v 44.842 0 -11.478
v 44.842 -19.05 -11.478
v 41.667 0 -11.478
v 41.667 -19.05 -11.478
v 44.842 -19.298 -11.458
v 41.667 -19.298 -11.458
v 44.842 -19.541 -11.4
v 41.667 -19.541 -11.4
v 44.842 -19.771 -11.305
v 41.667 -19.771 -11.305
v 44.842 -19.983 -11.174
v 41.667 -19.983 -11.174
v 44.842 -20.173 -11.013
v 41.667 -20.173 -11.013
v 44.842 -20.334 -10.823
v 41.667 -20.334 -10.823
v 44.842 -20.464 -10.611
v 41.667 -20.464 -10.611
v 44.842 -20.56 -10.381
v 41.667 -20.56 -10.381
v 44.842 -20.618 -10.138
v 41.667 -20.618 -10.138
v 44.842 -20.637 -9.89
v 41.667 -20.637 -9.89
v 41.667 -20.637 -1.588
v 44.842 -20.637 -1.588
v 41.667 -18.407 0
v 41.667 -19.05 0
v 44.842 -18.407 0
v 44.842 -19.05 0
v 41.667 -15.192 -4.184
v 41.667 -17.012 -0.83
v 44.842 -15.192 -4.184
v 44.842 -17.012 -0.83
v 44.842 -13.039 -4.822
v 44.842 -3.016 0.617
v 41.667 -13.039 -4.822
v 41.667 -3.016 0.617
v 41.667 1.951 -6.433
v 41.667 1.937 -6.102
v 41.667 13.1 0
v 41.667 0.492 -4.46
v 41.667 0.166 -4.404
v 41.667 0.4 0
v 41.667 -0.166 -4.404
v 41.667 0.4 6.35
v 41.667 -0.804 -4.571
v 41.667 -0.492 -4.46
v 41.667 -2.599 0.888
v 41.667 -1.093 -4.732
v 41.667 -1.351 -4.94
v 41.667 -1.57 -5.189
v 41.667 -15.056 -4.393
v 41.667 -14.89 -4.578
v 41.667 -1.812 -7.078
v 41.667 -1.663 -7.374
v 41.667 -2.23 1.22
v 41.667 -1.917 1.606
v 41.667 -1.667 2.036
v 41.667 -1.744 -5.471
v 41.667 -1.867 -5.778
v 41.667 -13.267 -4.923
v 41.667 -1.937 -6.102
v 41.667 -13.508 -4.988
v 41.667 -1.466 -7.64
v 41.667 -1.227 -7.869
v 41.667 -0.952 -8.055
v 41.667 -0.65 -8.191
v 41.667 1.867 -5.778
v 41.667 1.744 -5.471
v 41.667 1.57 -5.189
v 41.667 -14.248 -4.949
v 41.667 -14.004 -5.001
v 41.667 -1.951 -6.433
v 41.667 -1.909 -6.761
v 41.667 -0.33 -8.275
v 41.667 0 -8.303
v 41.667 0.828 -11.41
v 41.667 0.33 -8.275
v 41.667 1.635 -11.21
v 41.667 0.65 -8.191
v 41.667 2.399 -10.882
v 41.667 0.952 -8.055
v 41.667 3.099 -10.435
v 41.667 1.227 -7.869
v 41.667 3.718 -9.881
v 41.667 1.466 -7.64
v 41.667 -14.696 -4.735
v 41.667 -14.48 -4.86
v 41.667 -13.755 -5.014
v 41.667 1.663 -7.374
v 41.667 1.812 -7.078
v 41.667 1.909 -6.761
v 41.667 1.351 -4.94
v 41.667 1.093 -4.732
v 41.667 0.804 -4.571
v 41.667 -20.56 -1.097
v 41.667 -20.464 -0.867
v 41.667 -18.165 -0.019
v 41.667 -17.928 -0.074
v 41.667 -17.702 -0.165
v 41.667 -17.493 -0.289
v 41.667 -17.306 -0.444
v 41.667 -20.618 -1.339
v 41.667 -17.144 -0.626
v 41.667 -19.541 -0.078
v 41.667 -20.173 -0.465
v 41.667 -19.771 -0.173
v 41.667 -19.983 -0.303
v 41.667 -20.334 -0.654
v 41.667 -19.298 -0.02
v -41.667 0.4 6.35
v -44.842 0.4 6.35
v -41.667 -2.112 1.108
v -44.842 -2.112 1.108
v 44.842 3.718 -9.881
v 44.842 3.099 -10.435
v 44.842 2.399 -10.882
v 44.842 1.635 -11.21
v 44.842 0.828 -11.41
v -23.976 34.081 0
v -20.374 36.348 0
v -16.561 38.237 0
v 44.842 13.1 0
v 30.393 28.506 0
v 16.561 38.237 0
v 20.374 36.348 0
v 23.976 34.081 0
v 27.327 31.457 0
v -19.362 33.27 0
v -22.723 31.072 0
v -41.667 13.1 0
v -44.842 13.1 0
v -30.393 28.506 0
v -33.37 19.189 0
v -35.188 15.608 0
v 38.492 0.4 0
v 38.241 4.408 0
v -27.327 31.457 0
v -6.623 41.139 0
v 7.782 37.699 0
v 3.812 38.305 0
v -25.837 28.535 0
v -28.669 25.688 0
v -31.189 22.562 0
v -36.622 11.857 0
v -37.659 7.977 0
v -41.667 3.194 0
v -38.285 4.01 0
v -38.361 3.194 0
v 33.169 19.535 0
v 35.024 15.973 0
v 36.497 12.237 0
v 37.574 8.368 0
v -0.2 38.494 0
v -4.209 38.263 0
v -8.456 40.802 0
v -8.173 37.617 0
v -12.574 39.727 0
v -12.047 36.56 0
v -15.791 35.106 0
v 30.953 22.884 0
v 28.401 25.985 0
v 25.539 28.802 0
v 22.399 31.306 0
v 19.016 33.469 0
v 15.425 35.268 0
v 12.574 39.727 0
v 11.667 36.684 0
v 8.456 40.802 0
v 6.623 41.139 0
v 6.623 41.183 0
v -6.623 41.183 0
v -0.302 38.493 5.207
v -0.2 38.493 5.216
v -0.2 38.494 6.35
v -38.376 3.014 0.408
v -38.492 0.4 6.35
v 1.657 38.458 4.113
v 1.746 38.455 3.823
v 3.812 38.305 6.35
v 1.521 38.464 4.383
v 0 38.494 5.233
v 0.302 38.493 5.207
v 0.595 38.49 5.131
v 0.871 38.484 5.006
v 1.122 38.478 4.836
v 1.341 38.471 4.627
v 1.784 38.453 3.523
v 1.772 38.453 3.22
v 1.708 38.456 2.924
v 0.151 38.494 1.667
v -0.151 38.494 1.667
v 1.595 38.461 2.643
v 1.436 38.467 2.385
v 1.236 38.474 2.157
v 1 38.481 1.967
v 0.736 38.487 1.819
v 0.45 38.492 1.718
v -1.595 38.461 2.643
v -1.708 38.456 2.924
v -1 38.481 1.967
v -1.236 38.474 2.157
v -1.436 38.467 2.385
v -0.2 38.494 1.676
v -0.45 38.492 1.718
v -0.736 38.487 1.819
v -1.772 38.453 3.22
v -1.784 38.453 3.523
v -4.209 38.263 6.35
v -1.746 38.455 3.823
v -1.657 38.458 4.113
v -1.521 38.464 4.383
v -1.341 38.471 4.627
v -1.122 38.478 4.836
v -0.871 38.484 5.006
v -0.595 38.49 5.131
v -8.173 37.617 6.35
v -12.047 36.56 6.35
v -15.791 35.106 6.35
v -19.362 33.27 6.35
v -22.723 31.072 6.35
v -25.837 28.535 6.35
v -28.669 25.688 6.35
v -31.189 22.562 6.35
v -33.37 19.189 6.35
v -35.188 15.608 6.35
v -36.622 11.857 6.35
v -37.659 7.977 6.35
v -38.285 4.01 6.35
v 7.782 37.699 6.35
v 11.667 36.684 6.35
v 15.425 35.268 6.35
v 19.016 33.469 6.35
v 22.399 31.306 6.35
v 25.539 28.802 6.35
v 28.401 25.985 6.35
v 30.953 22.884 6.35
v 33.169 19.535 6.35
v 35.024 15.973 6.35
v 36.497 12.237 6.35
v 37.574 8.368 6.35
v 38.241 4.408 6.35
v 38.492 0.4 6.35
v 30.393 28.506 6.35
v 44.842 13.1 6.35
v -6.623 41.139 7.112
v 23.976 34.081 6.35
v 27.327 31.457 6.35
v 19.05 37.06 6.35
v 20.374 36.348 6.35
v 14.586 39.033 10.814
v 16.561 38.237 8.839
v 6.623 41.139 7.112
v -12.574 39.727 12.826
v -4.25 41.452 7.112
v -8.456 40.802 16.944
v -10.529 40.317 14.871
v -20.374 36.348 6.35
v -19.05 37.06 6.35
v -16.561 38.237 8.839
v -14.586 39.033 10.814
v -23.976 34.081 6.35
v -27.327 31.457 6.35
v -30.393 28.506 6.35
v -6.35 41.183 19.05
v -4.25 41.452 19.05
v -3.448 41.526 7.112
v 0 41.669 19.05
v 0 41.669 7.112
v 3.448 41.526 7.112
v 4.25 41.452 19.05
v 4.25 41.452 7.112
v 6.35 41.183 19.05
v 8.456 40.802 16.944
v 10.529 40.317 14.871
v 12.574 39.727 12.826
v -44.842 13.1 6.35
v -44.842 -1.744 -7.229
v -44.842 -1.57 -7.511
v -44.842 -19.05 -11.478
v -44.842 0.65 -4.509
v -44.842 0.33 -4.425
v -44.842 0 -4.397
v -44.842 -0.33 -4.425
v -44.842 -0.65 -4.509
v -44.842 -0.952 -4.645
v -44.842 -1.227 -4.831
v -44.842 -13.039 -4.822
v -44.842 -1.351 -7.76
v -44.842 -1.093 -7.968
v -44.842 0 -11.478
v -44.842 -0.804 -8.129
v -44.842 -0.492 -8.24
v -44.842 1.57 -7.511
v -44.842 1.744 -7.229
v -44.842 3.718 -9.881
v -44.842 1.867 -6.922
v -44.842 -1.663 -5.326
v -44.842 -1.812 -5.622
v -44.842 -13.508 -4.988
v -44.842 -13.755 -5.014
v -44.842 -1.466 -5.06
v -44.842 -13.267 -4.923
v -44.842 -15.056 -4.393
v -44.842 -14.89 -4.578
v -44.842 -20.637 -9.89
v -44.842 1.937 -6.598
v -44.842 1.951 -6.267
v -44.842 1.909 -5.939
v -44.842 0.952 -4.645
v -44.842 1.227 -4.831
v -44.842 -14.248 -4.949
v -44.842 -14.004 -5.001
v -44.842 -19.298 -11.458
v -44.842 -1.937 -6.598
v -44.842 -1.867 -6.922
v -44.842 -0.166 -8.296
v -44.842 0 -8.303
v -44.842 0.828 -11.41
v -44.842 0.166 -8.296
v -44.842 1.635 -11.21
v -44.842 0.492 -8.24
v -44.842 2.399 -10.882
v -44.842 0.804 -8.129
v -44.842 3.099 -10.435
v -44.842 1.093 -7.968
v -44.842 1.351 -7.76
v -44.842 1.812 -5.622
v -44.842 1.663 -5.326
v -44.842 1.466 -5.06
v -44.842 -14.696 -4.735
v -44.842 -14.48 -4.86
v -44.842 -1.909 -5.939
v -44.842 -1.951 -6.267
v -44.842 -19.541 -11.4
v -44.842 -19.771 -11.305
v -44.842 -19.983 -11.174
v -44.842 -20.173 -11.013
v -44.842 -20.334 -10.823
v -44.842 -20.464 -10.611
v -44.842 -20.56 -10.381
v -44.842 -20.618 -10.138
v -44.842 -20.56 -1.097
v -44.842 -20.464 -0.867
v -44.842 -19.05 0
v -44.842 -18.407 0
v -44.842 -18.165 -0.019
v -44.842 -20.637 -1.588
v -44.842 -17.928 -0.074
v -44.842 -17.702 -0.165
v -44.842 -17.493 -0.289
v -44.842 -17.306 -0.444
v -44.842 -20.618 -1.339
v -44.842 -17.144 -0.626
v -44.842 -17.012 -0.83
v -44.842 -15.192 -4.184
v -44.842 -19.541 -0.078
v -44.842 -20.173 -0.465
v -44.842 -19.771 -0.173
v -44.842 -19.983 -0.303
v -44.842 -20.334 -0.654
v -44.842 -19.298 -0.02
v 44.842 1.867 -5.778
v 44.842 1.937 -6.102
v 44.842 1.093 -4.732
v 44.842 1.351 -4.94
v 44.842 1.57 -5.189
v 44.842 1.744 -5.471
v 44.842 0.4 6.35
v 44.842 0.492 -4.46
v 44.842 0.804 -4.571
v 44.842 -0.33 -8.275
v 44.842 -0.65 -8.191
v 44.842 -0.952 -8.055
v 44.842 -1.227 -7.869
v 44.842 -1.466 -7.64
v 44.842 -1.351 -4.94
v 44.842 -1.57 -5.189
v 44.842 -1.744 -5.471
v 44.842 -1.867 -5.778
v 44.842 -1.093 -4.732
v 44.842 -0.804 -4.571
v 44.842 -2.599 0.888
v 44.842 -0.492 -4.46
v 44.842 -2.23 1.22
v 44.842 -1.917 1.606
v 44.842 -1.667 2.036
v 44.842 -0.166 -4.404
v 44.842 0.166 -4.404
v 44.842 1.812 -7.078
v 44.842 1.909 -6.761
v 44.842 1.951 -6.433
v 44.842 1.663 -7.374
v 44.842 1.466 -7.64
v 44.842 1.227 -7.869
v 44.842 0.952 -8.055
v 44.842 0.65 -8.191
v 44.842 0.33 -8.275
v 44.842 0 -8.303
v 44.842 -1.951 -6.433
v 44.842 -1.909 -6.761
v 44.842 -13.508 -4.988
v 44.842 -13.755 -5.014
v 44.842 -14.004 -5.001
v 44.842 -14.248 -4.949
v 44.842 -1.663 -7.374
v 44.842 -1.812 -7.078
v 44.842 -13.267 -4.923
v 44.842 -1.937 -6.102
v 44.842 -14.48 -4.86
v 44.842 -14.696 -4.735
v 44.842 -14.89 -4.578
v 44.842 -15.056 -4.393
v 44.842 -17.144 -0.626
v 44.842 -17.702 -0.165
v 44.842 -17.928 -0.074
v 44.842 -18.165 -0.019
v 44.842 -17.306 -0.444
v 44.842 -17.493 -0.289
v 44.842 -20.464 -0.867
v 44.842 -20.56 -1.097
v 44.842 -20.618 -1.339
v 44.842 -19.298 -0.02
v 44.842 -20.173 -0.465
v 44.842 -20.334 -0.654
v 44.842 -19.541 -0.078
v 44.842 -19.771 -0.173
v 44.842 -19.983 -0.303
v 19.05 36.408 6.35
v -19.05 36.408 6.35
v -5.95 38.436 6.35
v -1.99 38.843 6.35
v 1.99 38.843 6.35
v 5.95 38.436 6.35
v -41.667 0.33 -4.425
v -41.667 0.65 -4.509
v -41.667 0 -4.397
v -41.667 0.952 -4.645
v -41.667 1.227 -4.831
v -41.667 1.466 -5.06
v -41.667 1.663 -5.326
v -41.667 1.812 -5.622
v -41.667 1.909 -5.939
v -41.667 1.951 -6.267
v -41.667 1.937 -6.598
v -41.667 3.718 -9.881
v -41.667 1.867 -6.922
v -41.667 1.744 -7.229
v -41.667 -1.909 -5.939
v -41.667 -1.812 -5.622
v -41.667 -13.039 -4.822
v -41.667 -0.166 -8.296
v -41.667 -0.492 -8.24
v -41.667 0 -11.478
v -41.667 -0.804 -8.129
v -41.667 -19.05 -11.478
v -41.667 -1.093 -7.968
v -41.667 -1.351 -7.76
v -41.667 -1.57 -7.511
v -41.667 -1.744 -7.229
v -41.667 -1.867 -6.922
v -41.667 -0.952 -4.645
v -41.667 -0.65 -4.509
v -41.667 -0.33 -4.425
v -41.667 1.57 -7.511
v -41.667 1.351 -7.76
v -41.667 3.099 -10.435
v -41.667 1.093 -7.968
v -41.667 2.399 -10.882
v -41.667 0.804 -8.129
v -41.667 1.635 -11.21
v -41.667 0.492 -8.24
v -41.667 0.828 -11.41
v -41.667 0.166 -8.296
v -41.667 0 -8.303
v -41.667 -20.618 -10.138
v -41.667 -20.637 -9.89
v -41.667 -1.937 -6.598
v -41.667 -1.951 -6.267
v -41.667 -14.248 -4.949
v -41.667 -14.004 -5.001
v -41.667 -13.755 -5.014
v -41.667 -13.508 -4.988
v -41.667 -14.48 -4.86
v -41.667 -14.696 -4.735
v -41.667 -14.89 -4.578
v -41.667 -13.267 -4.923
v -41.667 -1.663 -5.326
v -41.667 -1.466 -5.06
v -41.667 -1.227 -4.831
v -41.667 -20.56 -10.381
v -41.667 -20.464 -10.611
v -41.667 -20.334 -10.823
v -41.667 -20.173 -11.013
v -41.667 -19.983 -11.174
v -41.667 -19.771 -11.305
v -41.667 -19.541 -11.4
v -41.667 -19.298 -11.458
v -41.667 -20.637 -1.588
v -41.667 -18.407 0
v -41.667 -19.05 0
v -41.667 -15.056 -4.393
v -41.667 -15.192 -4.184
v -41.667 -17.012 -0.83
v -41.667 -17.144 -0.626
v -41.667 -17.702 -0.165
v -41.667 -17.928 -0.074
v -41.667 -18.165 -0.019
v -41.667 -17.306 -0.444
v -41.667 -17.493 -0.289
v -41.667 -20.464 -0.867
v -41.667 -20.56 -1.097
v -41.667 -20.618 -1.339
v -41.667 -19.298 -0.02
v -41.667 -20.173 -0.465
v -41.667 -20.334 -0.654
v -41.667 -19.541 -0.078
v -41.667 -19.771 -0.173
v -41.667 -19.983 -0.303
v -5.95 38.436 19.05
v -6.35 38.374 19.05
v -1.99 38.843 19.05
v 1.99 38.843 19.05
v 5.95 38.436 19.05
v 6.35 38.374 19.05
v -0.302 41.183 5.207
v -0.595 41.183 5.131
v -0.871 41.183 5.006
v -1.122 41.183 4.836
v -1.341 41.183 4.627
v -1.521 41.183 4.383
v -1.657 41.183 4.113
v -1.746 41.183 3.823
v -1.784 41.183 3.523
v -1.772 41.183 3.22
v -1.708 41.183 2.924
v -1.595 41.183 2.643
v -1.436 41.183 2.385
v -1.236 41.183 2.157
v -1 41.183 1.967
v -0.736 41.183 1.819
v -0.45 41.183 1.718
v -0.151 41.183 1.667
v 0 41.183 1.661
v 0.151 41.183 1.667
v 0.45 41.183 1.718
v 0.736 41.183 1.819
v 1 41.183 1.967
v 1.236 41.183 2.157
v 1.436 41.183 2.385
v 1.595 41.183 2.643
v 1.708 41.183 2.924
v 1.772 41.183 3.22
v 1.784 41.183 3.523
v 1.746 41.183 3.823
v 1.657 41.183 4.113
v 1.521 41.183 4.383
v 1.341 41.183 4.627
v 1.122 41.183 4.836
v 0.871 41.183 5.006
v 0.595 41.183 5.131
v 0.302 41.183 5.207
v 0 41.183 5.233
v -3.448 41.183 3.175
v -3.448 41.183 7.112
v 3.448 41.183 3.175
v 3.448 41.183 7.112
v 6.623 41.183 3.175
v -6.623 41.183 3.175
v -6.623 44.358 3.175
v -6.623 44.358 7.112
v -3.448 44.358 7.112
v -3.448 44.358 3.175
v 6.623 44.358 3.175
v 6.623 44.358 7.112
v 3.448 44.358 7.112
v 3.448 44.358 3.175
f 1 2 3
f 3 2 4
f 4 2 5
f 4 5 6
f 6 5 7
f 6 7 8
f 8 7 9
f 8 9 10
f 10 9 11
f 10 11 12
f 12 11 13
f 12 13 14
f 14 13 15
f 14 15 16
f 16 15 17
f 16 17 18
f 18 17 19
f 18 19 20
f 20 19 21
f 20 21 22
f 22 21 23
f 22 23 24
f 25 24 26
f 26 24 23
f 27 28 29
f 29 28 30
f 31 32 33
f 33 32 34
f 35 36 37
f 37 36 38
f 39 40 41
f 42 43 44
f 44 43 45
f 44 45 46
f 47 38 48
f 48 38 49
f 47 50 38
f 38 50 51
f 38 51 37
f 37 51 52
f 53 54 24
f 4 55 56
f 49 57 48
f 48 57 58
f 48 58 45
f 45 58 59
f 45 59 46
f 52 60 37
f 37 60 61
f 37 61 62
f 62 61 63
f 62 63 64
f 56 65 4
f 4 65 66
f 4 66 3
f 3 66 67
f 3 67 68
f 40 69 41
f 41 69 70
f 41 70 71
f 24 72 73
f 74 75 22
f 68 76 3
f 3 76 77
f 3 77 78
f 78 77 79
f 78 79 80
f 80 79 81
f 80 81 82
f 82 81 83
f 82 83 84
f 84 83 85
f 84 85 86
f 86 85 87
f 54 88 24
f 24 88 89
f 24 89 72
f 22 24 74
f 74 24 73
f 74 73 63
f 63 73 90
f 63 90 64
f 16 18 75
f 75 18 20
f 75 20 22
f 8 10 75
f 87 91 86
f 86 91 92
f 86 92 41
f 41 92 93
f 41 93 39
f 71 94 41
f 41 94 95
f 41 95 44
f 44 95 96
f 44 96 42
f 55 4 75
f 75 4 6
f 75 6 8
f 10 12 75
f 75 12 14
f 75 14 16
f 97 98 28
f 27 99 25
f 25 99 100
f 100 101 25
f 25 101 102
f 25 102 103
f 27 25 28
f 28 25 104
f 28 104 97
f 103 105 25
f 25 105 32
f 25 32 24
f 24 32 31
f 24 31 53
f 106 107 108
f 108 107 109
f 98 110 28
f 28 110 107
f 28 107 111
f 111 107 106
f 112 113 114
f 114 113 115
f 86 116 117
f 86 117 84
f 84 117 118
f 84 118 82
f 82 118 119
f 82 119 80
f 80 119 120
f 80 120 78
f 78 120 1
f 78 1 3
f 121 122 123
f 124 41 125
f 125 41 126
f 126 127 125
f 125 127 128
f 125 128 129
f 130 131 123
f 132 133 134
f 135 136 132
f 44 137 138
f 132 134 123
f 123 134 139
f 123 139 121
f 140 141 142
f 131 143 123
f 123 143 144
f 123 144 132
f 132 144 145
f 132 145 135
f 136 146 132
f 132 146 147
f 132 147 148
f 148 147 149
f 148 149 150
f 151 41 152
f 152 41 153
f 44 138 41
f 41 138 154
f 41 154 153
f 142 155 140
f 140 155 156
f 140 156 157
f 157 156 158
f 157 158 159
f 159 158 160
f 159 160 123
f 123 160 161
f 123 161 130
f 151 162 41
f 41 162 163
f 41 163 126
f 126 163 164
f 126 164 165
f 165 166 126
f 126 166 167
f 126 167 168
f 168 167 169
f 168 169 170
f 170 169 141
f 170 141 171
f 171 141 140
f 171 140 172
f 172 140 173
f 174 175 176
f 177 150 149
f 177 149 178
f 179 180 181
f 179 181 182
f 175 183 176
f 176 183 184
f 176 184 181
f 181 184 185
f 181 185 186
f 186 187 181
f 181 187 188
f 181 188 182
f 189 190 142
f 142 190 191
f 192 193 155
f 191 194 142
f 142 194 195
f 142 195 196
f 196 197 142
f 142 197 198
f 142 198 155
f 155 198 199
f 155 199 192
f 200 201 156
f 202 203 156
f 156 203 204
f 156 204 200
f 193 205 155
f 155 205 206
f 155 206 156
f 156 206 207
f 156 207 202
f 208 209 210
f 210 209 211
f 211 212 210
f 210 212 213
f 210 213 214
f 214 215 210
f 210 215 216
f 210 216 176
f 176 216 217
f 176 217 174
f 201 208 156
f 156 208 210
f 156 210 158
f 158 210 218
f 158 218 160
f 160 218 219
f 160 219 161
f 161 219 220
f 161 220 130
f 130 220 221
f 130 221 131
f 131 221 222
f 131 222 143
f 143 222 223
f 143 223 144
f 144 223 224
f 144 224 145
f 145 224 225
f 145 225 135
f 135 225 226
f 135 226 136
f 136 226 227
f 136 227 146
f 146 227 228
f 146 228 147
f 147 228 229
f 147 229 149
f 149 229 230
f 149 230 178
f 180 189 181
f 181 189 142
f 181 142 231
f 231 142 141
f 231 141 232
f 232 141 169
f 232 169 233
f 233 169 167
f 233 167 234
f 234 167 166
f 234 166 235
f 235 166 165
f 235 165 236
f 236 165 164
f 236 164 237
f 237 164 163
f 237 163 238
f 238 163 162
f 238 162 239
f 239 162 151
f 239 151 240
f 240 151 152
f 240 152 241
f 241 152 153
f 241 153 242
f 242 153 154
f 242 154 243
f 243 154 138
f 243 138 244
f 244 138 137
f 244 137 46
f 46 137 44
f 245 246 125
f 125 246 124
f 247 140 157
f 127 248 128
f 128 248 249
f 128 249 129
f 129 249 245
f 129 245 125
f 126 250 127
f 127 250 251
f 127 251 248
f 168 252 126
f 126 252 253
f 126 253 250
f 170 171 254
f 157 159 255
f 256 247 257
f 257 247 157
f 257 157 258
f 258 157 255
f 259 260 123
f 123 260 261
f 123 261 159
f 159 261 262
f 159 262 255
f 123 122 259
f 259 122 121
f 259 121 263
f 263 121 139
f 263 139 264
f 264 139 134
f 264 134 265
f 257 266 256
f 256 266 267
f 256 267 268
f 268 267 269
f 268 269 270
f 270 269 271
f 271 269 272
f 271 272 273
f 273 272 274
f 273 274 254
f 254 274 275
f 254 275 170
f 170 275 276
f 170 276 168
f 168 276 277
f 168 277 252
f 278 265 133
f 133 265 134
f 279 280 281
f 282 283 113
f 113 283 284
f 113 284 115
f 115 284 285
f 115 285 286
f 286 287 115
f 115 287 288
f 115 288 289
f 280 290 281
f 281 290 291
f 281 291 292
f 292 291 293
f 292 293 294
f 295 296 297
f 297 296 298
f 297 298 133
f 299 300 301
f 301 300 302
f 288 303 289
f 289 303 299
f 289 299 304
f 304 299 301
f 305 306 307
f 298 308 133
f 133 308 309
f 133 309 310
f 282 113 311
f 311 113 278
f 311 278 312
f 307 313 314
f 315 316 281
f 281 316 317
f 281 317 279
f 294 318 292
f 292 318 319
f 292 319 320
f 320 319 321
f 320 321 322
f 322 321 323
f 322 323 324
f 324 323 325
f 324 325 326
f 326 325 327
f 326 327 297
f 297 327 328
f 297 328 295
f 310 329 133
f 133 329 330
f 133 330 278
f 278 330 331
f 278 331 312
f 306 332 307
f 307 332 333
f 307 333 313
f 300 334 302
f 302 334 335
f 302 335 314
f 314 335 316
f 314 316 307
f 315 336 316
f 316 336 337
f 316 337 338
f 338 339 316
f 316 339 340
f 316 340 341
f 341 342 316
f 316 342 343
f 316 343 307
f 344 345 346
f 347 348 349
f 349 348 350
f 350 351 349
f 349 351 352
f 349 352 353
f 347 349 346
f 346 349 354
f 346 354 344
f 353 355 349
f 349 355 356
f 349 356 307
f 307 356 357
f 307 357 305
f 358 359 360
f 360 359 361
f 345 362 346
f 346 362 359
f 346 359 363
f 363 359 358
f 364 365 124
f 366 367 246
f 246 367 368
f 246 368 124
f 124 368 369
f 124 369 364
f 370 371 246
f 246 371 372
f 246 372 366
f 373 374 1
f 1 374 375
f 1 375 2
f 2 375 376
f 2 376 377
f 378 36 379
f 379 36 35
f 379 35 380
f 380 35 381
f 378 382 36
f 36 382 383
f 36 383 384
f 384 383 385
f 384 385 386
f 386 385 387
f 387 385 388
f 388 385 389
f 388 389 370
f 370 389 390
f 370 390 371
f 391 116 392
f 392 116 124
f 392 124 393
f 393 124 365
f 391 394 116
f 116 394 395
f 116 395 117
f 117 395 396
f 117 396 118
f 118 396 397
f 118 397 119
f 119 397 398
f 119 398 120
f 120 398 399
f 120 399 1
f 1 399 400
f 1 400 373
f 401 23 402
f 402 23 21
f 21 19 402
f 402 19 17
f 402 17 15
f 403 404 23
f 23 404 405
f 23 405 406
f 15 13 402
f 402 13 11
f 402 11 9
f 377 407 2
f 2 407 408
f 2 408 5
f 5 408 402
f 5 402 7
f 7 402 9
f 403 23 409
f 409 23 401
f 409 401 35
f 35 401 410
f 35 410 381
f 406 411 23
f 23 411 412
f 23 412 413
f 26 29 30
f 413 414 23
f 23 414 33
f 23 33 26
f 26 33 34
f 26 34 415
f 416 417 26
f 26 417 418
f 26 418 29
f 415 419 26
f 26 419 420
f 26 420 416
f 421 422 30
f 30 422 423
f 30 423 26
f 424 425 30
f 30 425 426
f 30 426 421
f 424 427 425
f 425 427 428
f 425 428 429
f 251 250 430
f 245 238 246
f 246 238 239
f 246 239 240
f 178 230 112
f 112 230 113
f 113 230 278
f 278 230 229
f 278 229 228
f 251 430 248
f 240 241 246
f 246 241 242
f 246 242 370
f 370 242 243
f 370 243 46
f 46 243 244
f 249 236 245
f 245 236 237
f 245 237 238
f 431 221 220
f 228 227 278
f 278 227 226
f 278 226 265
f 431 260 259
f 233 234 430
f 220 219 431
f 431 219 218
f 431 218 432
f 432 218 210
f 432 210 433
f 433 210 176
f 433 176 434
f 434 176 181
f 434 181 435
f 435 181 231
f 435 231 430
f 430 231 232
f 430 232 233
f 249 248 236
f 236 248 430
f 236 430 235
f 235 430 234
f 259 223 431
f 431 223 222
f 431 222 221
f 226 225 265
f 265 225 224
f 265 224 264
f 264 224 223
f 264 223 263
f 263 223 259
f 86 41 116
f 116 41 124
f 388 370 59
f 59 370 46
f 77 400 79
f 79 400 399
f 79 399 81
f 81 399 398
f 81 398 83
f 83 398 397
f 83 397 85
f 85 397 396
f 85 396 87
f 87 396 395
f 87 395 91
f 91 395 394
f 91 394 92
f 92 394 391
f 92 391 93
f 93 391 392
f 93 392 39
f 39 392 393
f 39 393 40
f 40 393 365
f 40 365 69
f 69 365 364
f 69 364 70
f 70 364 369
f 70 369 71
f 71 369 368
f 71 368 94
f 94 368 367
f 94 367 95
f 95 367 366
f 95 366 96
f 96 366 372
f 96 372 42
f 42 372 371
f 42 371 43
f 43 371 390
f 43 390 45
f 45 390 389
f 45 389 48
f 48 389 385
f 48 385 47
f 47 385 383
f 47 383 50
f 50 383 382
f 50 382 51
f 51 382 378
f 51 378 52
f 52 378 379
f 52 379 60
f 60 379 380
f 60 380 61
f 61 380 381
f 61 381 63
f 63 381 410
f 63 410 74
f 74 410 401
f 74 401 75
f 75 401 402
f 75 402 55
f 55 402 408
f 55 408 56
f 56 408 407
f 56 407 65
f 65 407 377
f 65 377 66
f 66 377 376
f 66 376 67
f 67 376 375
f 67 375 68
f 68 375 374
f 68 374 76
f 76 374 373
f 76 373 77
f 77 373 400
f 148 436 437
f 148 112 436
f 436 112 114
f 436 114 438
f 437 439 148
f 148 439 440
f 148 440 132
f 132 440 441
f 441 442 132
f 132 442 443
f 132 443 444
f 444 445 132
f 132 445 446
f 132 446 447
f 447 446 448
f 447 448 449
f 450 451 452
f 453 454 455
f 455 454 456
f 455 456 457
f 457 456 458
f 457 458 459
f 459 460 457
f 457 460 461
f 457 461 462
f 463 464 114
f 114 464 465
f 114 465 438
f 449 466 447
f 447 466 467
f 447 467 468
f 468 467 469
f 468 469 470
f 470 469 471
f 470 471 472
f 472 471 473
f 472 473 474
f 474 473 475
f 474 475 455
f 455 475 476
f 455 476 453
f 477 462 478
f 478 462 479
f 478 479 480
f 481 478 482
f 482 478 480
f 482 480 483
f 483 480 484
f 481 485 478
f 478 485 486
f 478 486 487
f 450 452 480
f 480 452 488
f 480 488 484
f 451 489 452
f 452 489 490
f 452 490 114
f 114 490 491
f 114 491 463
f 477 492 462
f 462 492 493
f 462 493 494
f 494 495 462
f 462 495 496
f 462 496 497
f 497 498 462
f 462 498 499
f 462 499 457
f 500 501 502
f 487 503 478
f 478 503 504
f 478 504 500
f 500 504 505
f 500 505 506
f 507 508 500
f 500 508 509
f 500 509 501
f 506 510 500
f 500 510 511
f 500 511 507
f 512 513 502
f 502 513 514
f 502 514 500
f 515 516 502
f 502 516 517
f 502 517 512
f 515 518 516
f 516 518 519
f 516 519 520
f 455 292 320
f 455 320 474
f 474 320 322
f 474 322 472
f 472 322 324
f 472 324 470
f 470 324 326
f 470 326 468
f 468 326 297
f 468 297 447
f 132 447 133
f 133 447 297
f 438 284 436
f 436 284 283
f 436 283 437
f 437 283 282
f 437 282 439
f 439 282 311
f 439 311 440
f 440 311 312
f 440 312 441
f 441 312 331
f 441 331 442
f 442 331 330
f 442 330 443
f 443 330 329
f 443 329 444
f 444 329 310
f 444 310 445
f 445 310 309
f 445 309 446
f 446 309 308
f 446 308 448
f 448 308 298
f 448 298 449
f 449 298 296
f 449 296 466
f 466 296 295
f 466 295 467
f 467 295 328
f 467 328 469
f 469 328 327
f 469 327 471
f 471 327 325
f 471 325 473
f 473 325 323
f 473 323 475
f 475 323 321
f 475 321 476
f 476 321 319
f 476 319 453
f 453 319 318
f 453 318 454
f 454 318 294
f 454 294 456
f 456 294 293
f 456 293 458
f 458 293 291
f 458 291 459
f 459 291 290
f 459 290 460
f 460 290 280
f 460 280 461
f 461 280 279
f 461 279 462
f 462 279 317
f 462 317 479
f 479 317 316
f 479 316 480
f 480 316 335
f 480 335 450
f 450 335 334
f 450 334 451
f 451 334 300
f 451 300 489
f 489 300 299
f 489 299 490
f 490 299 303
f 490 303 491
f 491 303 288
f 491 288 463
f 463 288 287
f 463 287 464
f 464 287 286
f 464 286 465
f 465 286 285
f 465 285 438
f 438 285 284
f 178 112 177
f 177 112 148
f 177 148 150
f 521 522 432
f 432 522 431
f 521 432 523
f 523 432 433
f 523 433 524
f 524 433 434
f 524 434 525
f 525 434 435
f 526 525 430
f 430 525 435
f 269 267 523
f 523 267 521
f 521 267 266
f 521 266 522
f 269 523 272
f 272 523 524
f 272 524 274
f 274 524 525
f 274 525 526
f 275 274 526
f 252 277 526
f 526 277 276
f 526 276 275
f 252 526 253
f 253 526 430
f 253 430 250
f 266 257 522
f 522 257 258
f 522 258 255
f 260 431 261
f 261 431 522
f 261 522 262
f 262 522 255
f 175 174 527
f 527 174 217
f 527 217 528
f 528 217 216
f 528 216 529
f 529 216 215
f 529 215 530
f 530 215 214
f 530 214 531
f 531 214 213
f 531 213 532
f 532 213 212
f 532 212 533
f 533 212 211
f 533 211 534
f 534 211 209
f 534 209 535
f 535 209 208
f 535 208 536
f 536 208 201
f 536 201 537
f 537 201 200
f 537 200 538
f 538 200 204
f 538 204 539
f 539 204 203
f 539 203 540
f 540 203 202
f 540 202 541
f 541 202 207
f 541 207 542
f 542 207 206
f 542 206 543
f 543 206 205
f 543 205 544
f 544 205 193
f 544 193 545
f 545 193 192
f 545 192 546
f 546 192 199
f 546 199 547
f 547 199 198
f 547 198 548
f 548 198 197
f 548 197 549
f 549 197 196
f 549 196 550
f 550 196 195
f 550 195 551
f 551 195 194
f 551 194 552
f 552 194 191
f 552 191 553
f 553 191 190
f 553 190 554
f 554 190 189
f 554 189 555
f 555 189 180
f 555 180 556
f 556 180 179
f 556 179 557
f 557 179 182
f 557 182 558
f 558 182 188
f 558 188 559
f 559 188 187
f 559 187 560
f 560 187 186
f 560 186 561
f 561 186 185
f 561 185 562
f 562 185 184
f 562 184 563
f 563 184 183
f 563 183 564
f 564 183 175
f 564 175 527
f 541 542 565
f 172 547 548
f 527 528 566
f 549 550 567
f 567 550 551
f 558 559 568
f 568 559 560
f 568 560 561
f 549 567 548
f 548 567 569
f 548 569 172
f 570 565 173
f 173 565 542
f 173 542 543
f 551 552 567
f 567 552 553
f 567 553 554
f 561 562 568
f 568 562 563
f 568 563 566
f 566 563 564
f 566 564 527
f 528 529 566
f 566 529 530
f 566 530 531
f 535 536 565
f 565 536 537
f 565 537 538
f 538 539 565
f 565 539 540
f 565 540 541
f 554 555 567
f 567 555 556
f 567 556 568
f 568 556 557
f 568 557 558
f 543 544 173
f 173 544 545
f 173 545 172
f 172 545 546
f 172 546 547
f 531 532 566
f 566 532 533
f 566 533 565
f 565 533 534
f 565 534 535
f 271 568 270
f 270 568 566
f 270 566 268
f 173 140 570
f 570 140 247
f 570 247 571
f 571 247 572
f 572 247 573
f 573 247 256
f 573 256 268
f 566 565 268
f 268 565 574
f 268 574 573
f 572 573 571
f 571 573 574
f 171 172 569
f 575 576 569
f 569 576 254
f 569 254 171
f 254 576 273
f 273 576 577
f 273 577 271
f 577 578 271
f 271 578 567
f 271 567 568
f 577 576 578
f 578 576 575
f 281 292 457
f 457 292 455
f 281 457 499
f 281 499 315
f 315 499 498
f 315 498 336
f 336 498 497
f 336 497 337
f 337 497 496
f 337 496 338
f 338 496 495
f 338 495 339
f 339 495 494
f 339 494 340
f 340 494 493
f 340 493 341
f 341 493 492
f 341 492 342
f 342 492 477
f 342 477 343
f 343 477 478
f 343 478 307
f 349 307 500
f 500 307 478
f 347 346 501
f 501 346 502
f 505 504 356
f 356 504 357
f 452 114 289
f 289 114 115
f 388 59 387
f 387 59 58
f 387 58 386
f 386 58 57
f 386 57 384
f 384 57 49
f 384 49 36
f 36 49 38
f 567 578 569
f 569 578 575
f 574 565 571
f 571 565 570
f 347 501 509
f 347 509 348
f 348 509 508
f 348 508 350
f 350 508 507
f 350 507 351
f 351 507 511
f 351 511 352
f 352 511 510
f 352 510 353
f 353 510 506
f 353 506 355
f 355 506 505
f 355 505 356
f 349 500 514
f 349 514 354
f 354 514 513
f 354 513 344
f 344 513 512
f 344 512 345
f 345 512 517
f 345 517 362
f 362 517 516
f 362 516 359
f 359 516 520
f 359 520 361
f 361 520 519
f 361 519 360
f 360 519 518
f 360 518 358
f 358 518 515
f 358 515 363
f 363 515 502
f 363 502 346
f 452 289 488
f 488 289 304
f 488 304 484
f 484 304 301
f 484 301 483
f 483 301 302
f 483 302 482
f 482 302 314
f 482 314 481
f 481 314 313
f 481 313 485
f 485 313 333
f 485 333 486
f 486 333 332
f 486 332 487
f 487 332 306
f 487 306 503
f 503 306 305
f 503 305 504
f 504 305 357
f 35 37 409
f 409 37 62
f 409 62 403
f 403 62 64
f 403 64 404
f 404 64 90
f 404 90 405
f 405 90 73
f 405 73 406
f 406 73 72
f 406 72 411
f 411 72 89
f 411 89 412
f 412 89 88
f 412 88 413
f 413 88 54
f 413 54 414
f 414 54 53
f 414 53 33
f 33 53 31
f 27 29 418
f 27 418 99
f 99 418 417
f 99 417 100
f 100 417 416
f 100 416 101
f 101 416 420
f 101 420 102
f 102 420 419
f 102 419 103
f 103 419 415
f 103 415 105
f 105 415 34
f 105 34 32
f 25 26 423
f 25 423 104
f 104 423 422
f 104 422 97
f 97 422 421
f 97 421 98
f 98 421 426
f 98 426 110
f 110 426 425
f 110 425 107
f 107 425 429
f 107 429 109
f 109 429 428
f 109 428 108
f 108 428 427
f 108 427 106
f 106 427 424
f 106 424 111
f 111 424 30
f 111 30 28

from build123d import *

# Parameters (mm, degrees)
BOSS_EXTRUDE1_DEPTH                 = 6.35
SKETCH2_R                           = 1.9526
BOSS_EXTRUDE2_DEPTH                 = 3.175
CUT_EXTRUDE1_DEPTH                  = 3.175158
CUT_EXTRUDE1_DIRECTION_2_REACH      = 95.876
CUT_EXTRUDE1_DIRECTION_2_END_RADIUS = 38.494186542
BOSS_EXTRUDE3_DEPTH                 = 12.7
CHAMFER2_SIZE                       = 12.7
F_9_64_0_14063_DIAMETER_HOLE1_D     = 3.572002
CUT_EXTRUDE4_DEPTH                  = 7.112
BOSS_EXTRUDE4_DEPTH                 = 3.175
BOSS_EXTRUDE4_DEPTH_BACK            = 1.5875
SKETCH12_W                          = 3.175
SKETCH12_H                          = 7.112
BOSS_EXTRUDE6_START                 = -89.684533
BOSS_EXTRUDE6_DEPTH                 = 89.684533
FILLET5_R                           = 3.175
SKETCH18_W                          = 83.334533228
SKETCH18_H                          = 26.913353796
CUT_EXTRUDE8_DEPTH                  = 71.073899328
CUT_EXTRUDE6_DEPTH                  = 71.563193649
CUT_EXTRUDE6_DEPTH_BACK             = 71.563193649
SKETCH15_W                          = 3.175
SKETCH15_H                          = 3.175
FILLET6_R                           = 1.5875


with BuildPart() as part:
    # Sketch1 → Boss-Extrude1 (new body)
    with BuildSketch(Plane.XY):
        with BuildLine():
            Line((44.842266614, 13.1), (30.393088537, 28.505811271))
            ThreePointArc((30.393088537, 28.505811271), (0, 41.669186542), (-30.393088537, 28.505811271))
            Line((-30.393088537, 28.505811271), (-44.842266614, 13.1))
            Line((-44.842266614, 13.1), (-44.842266614, 0.4))
            Line((-44.842266614, 0.4), (-41.667266614, 0.4))
            Line((-41.667266614, 0.4), (-38.49210825, 0.4))
            ThreePointArc((-38.49210825, 0.4), (0, 38.494186542), (38.49210825, 0.4))
            Line((38.49210825, 0.4), (41.667266614, 0.4))
            Line((41.667266614, 0.4), (44.842266614, 0.4))
            Line((44.842266614, 0.4), (44.842266614, 13.1))
        make_face()
    extrude(amount=BOSS_EXTRUDE1_DEPTH)

    # Sketch2 → Boss-Extrude2 (add)
    with BuildSketch(Plane(origin=(44.842266614, 0, 0), x_dir=(0, 0, -1), z_dir=(1, 0, 0))):
        with BuildLine():
            Line((0, 13.1), (9.880631277, 3.71845728))
            ThreePointArc((9.880631277, 3.71845728), (10.572747241, -2.908726095), (4.134101417, -4.624075608))
            Line((4.134101417, -4.624075608), (-6.35, 0.4))
            Line((-6.35, 0.4), (0, 0.4))
            Line((0, 0.4), (0, 13.1))
        make_face()
        with Locations((6.35, 0)):
            Circle(SKETCH2_R, mode=Mode.SUBTRACT)
    boss_extrude2 = extrude(amount=-BOSS_EXTRUDE2_DEPTH)

    # Mirror1: Boss-Extrude2 across plane
    add(boss_extrude2.mirror(Plane(origin=(0, 0, 0), x_dir=(0, 0, 1), z_dir=(1, 0, 0))))

    # Sketch4 → Cut-Extrude1 (cut)
    with BuildSketch(Plane(origin=(-38.49210825, 0, 0), x_dir=(0, 0, -1), z_dir=(1, 0, 0))):
        Polygon((-6.35, 0.4), (0, 3.194), (0, 0.4), align=None)
    extrude(amount=-CUT_EXTRUDE1_DEPTH, mode=Mode.SUBTRACT)

    # Cut-Extrude1 direction 2: up to this cylinder (the profile starts outside it)
    cut_extrude1_direction_2_end = Plane(origin=(0, 0, 2.116667), z_dir=(0, 0, -1)) * Cylinder(CUT_EXTRUDE1_DIRECTION_2_END_RADIUS, 269.740373084, mode=Mode.PRIVATE)
    # Sketch4 → Cut-Extrude1 direction 2 (cut, up to the surface)
    with BuildSketch(Plane(origin=(-38.49210825, 0, 0), x_dir=(0, 0, -1), z_dir=(1, 0, 0)), mode=Mode.PRIVATE) as cut_extrude1_direction_2_sk1:
        Polygon((-6.35, 0.4), (0, 3.194), (0, 0.4), align=None)
    cut_extrude1_direction_2_tool1 = extrude(cut_extrude1_direction_2_sk1.sketch, amount=CUT_EXTRUDE1_DIRECTION_2_REACH, mode=Mode.PRIVATE) - cut_extrude1_direction_2_end
    add(cut_extrude1_direction_2_tool1.solids().sort_by_distance((-38.492108, 1.331333, 2.116667))[0], mode=Mode.SUBTRACT)

    # Sketch5 → Boss-Extrude3 (add)
    with BuildSketch(Plane.XY.offset(6.35)):
        with BuildLine():
            Line((-6.35, 38.374458705), (-6.35, 41.182503652))
            ThreePointArc((-6.35, 41.182503652), (0, 41.669186542), (6.35, 41.182503652))
            Line((6.35, 41.182503652), (6.35, 38.374458705))
            Line((6.35, 38.374458705), (5.95, 38.43637921))
            ThreePointArc((5.95, 38.43637921), (0, 38.894186542), (-5.95, 38.43637921))
            Line((-5.95, 38.43637921), (-6.35, 38.374458705))
        make_face()
    extrude(amount=BOSS_EXTRUDE3_DEPTH)

    # Chamfer2
    # the kernel refuses this chamfer: 12.7 mm, written as the material it adds along each edge
    with BuildSketch(Plane(origin=(6.35, 73.842877599, 6.35), x_dir=(0.9996219169112968, 0, -0.02749587661058633), z_dir=(0, -1, 0))) as chamfer2_piece_1_section:
        Polygon((CHAMFER2_SIZE * 0.999621916911, CHAMFER2_SIZE * 0.0274958766106), (-CHAMFER2_SIZE * 0.0274958766106, CHAMFER2_SIZE * 0.999621916911), (0, 0), align=None)
    chamfer2_piece_1 = extrude(amount=68.128792841, mode=Mode.PRIVATE)
    chamfer2_piece_1 = chamfer2_piece_1 & Plane(origin=(0, 0, 10.815604597), x_dir=(0.7293900135753609, 0.6840980982991656, 0), z_dir=(0, 0, -1)) * Cylinder(41.669186542, 188, mode=Mode.PRIVATE)
    chamfer2_piece_1 = split(chamfer2_piece_1, bisect_by=Plane(origin=(9.796586026, 37.840922839, 10.815604597), z_dir=(0.15297916035843936, 0.988229414911349, 0)), keep=Keep.TOP, mode=Mode.PRIVATE)
    chamfer2_piece_1 = split(chamfer2_piece_1, bisect_by=Plane(origin=(9.988062905, 39.077843499, 19.05), z_dir=(0, 0, -1)), keep=Keep.TOP, mode=Mode.PRIVATE)
    add(chamfer2_piece_1)
    with BuildSketch(Plane(origin=(-6.35, 5.714084758, 6.35), x_dir=(-0.9996219169112966, 0, -0.0274958766105864), z_dir=(0, 1, 0))) as chamfer2_piece_2_section:
        Polygon((CHAMFER2_SIZE * 0.999621916911, CHAMFER2_SIZE * 0.0274958766106), (-CHAMFER2_SIZE * 0.0274958766106, CHAMFER2_SIZE * 0.999621916911), (0, 0), align=None)
    chamfer2_piece_2 = extrude(amount=68.128792841, mode=Mode.PRIVATE)
    chamfer2_piece_2 = chamfer2_piece_2 & Plane(origin=(0, 0, 10.81560458), x_dir=(0.7293900135753609, 0.6840980982991656, 0), z_dir=(0, 0, -1)) * Cylinder(41.669186542, 188, mode=Mode.PRIVATE)
    chamfer2_piece_2 = split(chamfer2_piece_2, bisect_by=Plane(origin=(-9.796586033, 37.840922838, 10.81560458), z_dir=(-0.15297916035843936, 0.988229414911349, 0)), keep=Keep.TOP, mode=Mode.PRIVATE)
    chamfer2_piece_2 = split(chamfer2_piece_2, bisect_by=Plane(origin=(-9.988062912, 39.077843496, 19.05), z_dir=(0, 0, -1)), keep=Keep.TOP, mode=Mode.PRIVATE)
    add(chamfer2_piece_2)

    # 9/64 (0.14063) Diameter Hole1 (through all)
    with Locations(Plane(origin=(0, 41.669186542, 0), x_dir=(1, 0, 0), z_dir=(0, 1, 0))):
        with Locations((0, -3.44678)):
            Hole(F_9_64_0_14063_DIAMETER_HOLE1_D / 2)

    # Sketch11 → Cut-Extrude4 (cut)
    with BuildSketch(Plane(origin=(0, 0, 0), x_dir=(-1, 0, 0), z_dir=(0, 0, -1))):
        with BuildLine():
            ThreePointArc((6.35, 41.182503652), (0, 41.669186542), (-6.35, 41.182503652))
            Line((-6.35, 41.182503652), (6.35, 41.182503652))
        make_face()
    extrude(amount=-CUT_EXTRUDE4_DEPTH, mode=Mode.SUBTRACT)

    # Sketch12 → Boss-Extrude4 (add, two sides: drawn at the far end of the back side and taken through both)
    with BuildSketch(Plane(origin=(0, 41.182503652, 0), x_dir=(1, 0, 0), z_dir=(0, 1, 0)).offset(-BOSS_EXTRUDE4_DEPTH_BACK)):
        with Locations((-5.0355, -3.556)):
            Rectangle(SKETCH12_W, SKETCH12_H)
        with Locations((5.0355, -3.556)):
            Rectangle(SKETCH12_W, SKETCH12_H)
    extrude(amount=BOSS_EXTRUDE4_DEPTH + BOSS_EXTRUDE4_DEPTH_BACK)

    # Sketch16 → Boss-Extrude6 (add)
    with BuildSketch(Plane(origin=(44.842266614, 0, 0), x_dir=(0, 0, -1), z_dir=(1, 0, 0)).offset(BOSS_EXTRUDE6_START)):
        with BuildLine():
            Line((-1.107949291, -2.112037804), (5.579304246, -14.434735992))
            Line((5.579304246, -14.434735992), (0, -17.4625))
            Line((0, -17.4625), (0, -20.6375))
            Line((0, -20.6375), (9.8901, -20.6375))
            ThreePointArc((9.8901, -20.6375), (11.012632015, -20.172532015), (11.4776, -19.05))
            Line((11.4776, -19.05), (11.4776, 0))
            ThreePointArc((11.4776, 0), (9.082218896, -4.339039256), (4.134101417, -4.624075608))
            Line((4.134101417, -4.624075608), (-1.107949291, -2.112037804))
        make_face()
    boss_extrude6 = extrude(amount=BOSS_EXTRUDE6_DEPTH)

    # Fillet5
    fillet5_edges = [part.edges().sort_by_distance(p)[0] for p in [
        (43.254766614, -2.112037804, 1.107949291),
    ]]
    fillet(fillet5_edges, radius=FILLET5_R)

    # Mirror4: Boss-Extrude6 across plane
    add(boss_extrude6.mirror(Plane(origin=(0, 0, 0), x_dir=(0, 0, 1), z_dir=(1, 0, 0))))

    # Sketch18 → Cut-Extrude8 (cut, through all)
    with BuildSketch(Plane(origin=(0, 0, -11.4776), x_dir=(-1, 0, 0), z_dir=(0, 0, -1))):
        with Locations((0, -13.456676898)):
            Rectangle(SKETCH18_W, SKETCH18_H)
    extrude(amount=-CUT_EXTRUDE8_DEPTH, mode=Mode.SUBTRACT)

    # Sketch15 → Cut-Extrude6 (cut, two sides: drawn at the far end of the back side and taken through both)
    with BuildSketch(Plane(origin=(6.623, 0, 0), x_dir=(0, 0, -1), z_dir=(1, 0, 0)).offset(-CUT_EXTRUDE6_DEPTH_BACK)):
        with Locations((-1.5875, 42.770003652)):
            Rectangle(SKETCH15_W, SKETCH15_H)
    extrude(amount=CUT_EXTRUDE6_DEPTH + CUT_EXTRUDE6_DEPTH_BACK, mode=Mode.SUBTRACT)

    # Fillet6
    fillet6_edges = [part.edges().sort_by_distance(p)[0] for p in [
        (-43.2547665, -20.6375, 0),
        (-43.2547665, -17.4625, 0),
        (-43.2547665, -14.434735992, -5.579304246),
        (43.254766614, -14.434735992, -5.579304246),
        (43.254766614, -17.4625, 0),
        (43.254766614, -20.6375, 0),
    ]]
    fillet(fillet6_edges, radius=FILLET6_R)


solid = part.part
